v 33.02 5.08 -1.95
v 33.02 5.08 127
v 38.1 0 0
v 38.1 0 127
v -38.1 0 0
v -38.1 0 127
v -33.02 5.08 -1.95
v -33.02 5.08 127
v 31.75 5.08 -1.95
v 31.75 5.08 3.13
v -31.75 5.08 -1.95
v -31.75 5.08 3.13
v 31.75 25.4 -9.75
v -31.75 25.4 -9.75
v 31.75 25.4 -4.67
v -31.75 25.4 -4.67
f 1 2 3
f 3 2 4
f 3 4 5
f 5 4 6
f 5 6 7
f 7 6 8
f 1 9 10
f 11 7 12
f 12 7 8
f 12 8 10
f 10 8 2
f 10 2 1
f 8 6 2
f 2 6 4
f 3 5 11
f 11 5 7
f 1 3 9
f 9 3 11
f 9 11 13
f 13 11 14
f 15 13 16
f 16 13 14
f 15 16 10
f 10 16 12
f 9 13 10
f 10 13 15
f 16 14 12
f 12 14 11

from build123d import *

# Parameters (mm, degrees)
BOSS_EXTRUDE1_DEPTH      = 127
BOSS_EXTRUDE1_DEPTH_BACK = 19.547940452
BOSS_EXTRUDE3_DEPTH      = 31.75


with BuildPart() as part:
    # Sketch1 → Boss-Extrude1 (new, two sides)
    with BuildSketch(Plane.XY) as boss_extrude1_sk:
        Polygon((-38.1, 0), (38.1, 0), (33.02, 5.08), (-33.02, 5.08), align=None)
    extrude(amount=BOSS_EXTRUDE1_DEPTH)
    extrude(boss_extrude1_sk.sketch, amount=-BOSS_EXTRUDE1_DEPTH_BACK)

    # Sketch3 → Boss-Extrude3 (add, symmetric)
    with BuildSketch(Plane(origin=(0, 0, 0), x_dir=(0, 0, -1), z_dir=(1, 0, 0))):
        Polygon((0, 0), (9.75014649, 25.4), (4.67014649, 25.4), (-5.08, 0), align=None)
    extrude(amount=BOSS_EXTRUDE3_DEPTH, both=True)

    # SurfaceCut2
    split(bisect_by=Plane(origin=(0, 0, 0), x_dir=(-1, 0, 0), z_dir=(0, -0.3583679495453043, -0.9335804264972002)), keep=Keep.BOTTOM)


solid = part.part
